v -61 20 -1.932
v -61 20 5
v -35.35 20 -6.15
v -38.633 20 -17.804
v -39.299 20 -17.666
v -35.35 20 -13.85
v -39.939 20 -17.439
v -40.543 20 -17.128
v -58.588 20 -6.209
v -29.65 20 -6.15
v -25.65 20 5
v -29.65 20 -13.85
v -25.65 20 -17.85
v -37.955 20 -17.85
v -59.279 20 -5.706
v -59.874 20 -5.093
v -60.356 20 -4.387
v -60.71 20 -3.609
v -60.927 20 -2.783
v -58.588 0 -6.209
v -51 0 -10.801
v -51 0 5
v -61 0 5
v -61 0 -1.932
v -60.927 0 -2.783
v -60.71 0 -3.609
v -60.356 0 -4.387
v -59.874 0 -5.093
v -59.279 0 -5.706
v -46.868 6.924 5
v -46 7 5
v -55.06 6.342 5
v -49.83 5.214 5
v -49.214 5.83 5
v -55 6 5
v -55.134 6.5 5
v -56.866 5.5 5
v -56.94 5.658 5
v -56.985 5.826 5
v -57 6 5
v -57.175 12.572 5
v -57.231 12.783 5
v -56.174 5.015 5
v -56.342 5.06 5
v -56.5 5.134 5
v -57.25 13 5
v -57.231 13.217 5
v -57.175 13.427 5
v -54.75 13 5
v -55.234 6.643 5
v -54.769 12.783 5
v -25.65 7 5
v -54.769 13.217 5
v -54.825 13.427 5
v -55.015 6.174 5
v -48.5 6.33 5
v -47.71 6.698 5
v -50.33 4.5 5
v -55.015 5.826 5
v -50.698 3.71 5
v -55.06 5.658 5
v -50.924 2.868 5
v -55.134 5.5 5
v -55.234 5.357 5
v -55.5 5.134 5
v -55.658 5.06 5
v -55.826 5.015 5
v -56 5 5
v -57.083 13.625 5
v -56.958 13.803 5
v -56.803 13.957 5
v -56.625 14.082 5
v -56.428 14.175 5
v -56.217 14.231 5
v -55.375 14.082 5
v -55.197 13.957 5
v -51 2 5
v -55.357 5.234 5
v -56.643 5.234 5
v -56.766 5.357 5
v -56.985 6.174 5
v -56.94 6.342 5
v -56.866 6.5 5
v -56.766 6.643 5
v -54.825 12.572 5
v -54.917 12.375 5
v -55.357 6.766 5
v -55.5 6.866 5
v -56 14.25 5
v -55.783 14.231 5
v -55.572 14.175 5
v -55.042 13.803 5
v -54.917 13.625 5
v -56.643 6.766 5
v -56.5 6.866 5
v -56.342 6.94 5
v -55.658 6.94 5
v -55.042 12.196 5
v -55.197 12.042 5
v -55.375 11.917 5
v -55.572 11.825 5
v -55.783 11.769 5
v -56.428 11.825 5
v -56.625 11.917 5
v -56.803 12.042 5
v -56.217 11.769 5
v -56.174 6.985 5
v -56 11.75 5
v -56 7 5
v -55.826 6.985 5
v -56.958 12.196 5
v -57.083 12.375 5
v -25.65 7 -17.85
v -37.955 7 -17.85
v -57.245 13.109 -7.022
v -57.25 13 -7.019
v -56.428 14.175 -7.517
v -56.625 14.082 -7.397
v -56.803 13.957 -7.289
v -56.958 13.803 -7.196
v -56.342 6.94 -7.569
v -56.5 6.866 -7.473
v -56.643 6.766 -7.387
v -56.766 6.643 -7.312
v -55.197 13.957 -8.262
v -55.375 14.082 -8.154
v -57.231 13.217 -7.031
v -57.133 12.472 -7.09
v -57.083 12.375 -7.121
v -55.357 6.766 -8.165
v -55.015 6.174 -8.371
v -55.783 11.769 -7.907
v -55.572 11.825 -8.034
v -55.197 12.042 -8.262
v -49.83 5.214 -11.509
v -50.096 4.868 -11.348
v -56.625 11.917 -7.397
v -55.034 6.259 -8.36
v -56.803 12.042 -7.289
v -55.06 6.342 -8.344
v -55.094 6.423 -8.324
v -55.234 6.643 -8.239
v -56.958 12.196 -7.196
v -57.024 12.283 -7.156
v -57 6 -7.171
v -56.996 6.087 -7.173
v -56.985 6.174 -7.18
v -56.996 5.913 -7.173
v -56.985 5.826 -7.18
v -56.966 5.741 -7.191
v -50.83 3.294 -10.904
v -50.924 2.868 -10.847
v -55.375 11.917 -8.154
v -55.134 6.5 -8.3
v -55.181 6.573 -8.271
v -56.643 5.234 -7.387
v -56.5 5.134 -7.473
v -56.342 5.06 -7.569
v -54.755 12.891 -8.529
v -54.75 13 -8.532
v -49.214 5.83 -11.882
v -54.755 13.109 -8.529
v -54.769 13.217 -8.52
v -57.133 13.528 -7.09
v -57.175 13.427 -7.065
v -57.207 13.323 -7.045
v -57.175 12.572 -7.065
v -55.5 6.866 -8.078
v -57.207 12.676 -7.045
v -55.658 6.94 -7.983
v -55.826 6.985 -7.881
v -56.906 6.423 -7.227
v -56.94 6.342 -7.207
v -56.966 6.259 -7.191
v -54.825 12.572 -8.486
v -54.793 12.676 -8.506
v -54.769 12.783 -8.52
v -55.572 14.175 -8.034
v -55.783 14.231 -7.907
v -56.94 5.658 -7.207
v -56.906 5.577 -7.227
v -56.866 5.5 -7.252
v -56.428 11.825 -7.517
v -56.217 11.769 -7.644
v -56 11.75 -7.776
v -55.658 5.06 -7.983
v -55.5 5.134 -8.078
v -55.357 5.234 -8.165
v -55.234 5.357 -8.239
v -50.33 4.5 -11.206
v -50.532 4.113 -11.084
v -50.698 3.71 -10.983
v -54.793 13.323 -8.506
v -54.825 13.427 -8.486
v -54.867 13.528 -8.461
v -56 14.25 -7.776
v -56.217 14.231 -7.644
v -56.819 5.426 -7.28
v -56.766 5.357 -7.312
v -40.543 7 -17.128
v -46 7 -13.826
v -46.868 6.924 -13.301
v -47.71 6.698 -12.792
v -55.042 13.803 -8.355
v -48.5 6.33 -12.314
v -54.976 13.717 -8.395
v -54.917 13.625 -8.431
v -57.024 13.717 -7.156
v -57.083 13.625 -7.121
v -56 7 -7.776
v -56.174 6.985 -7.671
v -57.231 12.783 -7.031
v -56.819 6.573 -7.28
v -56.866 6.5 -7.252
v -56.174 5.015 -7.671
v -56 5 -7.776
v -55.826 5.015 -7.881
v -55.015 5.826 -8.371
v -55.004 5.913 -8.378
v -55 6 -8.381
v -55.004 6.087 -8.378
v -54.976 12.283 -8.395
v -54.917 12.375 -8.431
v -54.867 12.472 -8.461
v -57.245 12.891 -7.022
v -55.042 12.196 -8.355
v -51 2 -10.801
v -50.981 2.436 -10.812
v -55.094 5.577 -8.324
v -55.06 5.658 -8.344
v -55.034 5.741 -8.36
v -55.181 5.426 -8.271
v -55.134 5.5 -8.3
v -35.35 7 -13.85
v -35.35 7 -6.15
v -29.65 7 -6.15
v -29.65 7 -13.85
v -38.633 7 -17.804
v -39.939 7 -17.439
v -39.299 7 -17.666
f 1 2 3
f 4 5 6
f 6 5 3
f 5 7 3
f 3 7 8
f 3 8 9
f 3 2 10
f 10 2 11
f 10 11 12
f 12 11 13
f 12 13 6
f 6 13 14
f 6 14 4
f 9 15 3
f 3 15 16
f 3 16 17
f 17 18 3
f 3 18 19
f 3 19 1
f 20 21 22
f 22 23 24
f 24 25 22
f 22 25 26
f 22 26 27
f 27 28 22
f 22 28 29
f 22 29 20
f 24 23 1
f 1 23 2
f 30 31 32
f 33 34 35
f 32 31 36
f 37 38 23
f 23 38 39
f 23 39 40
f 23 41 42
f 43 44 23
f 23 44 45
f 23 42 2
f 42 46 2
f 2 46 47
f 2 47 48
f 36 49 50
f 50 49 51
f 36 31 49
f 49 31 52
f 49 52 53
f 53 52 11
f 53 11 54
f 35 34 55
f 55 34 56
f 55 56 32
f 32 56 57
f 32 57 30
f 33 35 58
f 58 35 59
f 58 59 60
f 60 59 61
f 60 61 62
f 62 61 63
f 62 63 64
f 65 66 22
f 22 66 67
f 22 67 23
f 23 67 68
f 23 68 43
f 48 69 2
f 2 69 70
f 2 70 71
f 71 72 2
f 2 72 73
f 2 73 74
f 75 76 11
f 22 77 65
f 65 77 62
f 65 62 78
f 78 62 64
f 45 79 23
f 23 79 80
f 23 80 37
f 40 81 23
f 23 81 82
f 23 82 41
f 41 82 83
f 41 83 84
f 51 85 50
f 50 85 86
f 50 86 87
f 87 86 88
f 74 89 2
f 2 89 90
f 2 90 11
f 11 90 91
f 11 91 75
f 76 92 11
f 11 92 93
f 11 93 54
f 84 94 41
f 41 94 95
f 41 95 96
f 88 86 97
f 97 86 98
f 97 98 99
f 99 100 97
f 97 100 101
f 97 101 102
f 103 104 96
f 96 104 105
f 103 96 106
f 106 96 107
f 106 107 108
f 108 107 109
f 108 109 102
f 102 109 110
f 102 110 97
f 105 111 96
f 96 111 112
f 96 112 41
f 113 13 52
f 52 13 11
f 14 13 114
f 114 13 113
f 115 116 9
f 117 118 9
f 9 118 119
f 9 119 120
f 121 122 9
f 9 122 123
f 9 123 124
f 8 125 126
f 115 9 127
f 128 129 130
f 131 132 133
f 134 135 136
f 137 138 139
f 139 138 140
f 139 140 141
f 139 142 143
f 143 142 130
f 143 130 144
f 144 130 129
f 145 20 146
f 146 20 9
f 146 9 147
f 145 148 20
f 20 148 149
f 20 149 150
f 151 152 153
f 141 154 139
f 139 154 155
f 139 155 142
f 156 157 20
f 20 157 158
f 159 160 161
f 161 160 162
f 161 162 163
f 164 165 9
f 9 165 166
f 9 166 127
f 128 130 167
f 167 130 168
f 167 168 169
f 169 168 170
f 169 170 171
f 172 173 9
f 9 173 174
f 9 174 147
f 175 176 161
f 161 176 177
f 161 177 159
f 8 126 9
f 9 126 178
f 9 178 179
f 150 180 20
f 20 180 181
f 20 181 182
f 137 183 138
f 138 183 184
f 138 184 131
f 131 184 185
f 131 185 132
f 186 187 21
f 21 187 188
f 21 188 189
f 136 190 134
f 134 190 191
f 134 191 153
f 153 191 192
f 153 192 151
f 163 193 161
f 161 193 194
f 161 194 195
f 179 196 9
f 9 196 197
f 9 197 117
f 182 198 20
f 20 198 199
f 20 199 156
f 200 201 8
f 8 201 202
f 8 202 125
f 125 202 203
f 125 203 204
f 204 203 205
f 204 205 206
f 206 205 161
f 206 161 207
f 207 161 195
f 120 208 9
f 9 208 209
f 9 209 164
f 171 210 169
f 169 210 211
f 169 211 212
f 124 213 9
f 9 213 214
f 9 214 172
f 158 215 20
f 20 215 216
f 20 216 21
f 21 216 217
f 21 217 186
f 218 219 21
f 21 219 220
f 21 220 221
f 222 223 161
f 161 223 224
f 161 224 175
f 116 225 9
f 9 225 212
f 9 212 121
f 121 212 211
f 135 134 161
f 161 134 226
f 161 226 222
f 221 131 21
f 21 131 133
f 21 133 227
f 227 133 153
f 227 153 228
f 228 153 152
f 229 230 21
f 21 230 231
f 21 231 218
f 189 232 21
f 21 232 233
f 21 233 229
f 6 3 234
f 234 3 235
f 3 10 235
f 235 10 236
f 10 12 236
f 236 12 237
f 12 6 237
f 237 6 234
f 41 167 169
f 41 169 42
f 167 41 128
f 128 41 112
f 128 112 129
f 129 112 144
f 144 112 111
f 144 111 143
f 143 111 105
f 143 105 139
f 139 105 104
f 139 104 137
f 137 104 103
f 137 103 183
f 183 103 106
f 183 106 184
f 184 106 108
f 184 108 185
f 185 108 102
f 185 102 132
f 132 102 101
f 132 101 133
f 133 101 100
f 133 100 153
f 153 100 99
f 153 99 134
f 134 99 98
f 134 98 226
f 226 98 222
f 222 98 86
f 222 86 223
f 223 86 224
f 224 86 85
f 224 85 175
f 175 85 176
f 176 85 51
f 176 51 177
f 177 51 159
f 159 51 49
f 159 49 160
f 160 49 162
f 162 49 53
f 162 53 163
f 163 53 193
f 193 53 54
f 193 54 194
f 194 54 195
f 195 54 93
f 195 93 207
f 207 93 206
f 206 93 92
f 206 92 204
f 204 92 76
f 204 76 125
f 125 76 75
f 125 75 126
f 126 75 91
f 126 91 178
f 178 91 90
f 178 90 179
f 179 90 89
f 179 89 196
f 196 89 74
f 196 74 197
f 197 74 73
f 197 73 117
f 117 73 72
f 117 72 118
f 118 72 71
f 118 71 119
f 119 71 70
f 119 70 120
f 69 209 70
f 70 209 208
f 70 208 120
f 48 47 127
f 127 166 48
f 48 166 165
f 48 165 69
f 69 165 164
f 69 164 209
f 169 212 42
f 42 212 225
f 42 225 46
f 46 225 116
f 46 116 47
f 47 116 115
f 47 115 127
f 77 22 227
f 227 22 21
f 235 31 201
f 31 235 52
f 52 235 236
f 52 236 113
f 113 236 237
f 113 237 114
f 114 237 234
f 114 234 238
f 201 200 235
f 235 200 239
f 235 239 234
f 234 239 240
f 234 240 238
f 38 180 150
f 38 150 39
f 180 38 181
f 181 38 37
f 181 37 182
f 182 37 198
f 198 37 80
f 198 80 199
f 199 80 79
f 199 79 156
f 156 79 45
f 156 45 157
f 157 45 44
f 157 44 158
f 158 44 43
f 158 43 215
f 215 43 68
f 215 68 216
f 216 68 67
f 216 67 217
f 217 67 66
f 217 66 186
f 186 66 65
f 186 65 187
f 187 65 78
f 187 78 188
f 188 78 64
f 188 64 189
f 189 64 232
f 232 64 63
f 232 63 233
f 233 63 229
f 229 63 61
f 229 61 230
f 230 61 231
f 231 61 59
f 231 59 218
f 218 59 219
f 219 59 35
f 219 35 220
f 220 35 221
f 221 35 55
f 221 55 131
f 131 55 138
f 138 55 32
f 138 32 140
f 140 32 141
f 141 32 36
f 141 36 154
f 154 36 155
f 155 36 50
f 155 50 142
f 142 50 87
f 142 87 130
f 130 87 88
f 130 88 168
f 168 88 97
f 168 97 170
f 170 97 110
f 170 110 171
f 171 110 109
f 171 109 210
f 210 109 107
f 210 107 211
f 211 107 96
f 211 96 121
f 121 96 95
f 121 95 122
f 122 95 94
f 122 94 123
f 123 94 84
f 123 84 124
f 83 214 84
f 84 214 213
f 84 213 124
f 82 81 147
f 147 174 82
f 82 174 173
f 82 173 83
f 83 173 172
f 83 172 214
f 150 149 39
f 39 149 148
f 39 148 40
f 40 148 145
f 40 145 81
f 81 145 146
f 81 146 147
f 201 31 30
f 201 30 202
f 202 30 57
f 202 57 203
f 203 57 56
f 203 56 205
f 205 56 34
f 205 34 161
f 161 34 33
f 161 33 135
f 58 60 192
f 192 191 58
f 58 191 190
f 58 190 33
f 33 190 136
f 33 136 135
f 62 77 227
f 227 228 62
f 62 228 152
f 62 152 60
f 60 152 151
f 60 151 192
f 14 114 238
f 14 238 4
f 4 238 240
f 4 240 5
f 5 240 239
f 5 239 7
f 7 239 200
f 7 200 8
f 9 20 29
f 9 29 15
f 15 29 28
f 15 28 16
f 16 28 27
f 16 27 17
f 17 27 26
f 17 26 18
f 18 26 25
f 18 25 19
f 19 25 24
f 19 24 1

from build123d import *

# Parameters (mm, degrees)
ESQUISSE2_W             = 5.7
ESQUISSE2_H             = 7.7
BOSS_EXTRU_1_DEPTH      = 20
ESQUISSE3_R             = 1.25
ESQUISSE3_R_2           = 1
ESQUISSE3_W             = 25.35
ESQUISSE3_H             = 7
ENL_V_MAT_EXTRU_1_DEPTH = 23.85
CONG_1_R                = 5
CONG_2_R                = 5


with BuildPart() as part:
    # Esquisse2 → Boss.-Extru.1 (new body)
    with BuildSketch(Plane(origin=(0, 0, 0), x_dir=(1, 0, 0), z_dir=(0, 1, 0))):
        Polygon((-61, -5), (-51.584269114, -5), (-25.65, -5), (-25.65, 17.85), (-39.35, 17.85), (-61, 4.750279551), align=None)
        with Locations((-32.5, 10)):
            Rectangle(ESQUISSE2_W, ESQUISSE2_H, mode=Mode.SUBTRACT)
    extrude(amount=BOSS_EXTRU_1_DEPTH)

    # Esquisse3 → Enlèv. mat.-Extru.1 (cut, through all)
    with BuildSketch(Plane.XY.offset(5)):
        with Locations((-56, 12.999901199)):
            Circle(ESQUISSE3_R)
        with Locations((-56, 5.999901199)):
            Circle(ESQUISSE3_R_2)
        with Locations((-38.325, 3.5)):
            Rectangle(ESQUISSE3_W, ESQUISSE3_H)
    extrude(amount=-ENL_V_MAT_EXTRU_1_DEPTH, mode=Mode.SUBTRACT)

    # Congé1
    cong_1_edges = [part.edges().sort_by_distance(p)[0] for p in [
        (-51, 7, -2.900479371),
    ]]
    fillet(cong_1_edges, radius=CONG_1_R)

    # Congé2
    cong_2_edges = [part.edges().sort_by_distance(p)[0] for p in [
        (-61, 10, -4.750279551),
        (-39.35, 13.5, -17.85),
    ]]
    fillet(cong_2_edges, radius=CONG_2_R)


solid = part.part
